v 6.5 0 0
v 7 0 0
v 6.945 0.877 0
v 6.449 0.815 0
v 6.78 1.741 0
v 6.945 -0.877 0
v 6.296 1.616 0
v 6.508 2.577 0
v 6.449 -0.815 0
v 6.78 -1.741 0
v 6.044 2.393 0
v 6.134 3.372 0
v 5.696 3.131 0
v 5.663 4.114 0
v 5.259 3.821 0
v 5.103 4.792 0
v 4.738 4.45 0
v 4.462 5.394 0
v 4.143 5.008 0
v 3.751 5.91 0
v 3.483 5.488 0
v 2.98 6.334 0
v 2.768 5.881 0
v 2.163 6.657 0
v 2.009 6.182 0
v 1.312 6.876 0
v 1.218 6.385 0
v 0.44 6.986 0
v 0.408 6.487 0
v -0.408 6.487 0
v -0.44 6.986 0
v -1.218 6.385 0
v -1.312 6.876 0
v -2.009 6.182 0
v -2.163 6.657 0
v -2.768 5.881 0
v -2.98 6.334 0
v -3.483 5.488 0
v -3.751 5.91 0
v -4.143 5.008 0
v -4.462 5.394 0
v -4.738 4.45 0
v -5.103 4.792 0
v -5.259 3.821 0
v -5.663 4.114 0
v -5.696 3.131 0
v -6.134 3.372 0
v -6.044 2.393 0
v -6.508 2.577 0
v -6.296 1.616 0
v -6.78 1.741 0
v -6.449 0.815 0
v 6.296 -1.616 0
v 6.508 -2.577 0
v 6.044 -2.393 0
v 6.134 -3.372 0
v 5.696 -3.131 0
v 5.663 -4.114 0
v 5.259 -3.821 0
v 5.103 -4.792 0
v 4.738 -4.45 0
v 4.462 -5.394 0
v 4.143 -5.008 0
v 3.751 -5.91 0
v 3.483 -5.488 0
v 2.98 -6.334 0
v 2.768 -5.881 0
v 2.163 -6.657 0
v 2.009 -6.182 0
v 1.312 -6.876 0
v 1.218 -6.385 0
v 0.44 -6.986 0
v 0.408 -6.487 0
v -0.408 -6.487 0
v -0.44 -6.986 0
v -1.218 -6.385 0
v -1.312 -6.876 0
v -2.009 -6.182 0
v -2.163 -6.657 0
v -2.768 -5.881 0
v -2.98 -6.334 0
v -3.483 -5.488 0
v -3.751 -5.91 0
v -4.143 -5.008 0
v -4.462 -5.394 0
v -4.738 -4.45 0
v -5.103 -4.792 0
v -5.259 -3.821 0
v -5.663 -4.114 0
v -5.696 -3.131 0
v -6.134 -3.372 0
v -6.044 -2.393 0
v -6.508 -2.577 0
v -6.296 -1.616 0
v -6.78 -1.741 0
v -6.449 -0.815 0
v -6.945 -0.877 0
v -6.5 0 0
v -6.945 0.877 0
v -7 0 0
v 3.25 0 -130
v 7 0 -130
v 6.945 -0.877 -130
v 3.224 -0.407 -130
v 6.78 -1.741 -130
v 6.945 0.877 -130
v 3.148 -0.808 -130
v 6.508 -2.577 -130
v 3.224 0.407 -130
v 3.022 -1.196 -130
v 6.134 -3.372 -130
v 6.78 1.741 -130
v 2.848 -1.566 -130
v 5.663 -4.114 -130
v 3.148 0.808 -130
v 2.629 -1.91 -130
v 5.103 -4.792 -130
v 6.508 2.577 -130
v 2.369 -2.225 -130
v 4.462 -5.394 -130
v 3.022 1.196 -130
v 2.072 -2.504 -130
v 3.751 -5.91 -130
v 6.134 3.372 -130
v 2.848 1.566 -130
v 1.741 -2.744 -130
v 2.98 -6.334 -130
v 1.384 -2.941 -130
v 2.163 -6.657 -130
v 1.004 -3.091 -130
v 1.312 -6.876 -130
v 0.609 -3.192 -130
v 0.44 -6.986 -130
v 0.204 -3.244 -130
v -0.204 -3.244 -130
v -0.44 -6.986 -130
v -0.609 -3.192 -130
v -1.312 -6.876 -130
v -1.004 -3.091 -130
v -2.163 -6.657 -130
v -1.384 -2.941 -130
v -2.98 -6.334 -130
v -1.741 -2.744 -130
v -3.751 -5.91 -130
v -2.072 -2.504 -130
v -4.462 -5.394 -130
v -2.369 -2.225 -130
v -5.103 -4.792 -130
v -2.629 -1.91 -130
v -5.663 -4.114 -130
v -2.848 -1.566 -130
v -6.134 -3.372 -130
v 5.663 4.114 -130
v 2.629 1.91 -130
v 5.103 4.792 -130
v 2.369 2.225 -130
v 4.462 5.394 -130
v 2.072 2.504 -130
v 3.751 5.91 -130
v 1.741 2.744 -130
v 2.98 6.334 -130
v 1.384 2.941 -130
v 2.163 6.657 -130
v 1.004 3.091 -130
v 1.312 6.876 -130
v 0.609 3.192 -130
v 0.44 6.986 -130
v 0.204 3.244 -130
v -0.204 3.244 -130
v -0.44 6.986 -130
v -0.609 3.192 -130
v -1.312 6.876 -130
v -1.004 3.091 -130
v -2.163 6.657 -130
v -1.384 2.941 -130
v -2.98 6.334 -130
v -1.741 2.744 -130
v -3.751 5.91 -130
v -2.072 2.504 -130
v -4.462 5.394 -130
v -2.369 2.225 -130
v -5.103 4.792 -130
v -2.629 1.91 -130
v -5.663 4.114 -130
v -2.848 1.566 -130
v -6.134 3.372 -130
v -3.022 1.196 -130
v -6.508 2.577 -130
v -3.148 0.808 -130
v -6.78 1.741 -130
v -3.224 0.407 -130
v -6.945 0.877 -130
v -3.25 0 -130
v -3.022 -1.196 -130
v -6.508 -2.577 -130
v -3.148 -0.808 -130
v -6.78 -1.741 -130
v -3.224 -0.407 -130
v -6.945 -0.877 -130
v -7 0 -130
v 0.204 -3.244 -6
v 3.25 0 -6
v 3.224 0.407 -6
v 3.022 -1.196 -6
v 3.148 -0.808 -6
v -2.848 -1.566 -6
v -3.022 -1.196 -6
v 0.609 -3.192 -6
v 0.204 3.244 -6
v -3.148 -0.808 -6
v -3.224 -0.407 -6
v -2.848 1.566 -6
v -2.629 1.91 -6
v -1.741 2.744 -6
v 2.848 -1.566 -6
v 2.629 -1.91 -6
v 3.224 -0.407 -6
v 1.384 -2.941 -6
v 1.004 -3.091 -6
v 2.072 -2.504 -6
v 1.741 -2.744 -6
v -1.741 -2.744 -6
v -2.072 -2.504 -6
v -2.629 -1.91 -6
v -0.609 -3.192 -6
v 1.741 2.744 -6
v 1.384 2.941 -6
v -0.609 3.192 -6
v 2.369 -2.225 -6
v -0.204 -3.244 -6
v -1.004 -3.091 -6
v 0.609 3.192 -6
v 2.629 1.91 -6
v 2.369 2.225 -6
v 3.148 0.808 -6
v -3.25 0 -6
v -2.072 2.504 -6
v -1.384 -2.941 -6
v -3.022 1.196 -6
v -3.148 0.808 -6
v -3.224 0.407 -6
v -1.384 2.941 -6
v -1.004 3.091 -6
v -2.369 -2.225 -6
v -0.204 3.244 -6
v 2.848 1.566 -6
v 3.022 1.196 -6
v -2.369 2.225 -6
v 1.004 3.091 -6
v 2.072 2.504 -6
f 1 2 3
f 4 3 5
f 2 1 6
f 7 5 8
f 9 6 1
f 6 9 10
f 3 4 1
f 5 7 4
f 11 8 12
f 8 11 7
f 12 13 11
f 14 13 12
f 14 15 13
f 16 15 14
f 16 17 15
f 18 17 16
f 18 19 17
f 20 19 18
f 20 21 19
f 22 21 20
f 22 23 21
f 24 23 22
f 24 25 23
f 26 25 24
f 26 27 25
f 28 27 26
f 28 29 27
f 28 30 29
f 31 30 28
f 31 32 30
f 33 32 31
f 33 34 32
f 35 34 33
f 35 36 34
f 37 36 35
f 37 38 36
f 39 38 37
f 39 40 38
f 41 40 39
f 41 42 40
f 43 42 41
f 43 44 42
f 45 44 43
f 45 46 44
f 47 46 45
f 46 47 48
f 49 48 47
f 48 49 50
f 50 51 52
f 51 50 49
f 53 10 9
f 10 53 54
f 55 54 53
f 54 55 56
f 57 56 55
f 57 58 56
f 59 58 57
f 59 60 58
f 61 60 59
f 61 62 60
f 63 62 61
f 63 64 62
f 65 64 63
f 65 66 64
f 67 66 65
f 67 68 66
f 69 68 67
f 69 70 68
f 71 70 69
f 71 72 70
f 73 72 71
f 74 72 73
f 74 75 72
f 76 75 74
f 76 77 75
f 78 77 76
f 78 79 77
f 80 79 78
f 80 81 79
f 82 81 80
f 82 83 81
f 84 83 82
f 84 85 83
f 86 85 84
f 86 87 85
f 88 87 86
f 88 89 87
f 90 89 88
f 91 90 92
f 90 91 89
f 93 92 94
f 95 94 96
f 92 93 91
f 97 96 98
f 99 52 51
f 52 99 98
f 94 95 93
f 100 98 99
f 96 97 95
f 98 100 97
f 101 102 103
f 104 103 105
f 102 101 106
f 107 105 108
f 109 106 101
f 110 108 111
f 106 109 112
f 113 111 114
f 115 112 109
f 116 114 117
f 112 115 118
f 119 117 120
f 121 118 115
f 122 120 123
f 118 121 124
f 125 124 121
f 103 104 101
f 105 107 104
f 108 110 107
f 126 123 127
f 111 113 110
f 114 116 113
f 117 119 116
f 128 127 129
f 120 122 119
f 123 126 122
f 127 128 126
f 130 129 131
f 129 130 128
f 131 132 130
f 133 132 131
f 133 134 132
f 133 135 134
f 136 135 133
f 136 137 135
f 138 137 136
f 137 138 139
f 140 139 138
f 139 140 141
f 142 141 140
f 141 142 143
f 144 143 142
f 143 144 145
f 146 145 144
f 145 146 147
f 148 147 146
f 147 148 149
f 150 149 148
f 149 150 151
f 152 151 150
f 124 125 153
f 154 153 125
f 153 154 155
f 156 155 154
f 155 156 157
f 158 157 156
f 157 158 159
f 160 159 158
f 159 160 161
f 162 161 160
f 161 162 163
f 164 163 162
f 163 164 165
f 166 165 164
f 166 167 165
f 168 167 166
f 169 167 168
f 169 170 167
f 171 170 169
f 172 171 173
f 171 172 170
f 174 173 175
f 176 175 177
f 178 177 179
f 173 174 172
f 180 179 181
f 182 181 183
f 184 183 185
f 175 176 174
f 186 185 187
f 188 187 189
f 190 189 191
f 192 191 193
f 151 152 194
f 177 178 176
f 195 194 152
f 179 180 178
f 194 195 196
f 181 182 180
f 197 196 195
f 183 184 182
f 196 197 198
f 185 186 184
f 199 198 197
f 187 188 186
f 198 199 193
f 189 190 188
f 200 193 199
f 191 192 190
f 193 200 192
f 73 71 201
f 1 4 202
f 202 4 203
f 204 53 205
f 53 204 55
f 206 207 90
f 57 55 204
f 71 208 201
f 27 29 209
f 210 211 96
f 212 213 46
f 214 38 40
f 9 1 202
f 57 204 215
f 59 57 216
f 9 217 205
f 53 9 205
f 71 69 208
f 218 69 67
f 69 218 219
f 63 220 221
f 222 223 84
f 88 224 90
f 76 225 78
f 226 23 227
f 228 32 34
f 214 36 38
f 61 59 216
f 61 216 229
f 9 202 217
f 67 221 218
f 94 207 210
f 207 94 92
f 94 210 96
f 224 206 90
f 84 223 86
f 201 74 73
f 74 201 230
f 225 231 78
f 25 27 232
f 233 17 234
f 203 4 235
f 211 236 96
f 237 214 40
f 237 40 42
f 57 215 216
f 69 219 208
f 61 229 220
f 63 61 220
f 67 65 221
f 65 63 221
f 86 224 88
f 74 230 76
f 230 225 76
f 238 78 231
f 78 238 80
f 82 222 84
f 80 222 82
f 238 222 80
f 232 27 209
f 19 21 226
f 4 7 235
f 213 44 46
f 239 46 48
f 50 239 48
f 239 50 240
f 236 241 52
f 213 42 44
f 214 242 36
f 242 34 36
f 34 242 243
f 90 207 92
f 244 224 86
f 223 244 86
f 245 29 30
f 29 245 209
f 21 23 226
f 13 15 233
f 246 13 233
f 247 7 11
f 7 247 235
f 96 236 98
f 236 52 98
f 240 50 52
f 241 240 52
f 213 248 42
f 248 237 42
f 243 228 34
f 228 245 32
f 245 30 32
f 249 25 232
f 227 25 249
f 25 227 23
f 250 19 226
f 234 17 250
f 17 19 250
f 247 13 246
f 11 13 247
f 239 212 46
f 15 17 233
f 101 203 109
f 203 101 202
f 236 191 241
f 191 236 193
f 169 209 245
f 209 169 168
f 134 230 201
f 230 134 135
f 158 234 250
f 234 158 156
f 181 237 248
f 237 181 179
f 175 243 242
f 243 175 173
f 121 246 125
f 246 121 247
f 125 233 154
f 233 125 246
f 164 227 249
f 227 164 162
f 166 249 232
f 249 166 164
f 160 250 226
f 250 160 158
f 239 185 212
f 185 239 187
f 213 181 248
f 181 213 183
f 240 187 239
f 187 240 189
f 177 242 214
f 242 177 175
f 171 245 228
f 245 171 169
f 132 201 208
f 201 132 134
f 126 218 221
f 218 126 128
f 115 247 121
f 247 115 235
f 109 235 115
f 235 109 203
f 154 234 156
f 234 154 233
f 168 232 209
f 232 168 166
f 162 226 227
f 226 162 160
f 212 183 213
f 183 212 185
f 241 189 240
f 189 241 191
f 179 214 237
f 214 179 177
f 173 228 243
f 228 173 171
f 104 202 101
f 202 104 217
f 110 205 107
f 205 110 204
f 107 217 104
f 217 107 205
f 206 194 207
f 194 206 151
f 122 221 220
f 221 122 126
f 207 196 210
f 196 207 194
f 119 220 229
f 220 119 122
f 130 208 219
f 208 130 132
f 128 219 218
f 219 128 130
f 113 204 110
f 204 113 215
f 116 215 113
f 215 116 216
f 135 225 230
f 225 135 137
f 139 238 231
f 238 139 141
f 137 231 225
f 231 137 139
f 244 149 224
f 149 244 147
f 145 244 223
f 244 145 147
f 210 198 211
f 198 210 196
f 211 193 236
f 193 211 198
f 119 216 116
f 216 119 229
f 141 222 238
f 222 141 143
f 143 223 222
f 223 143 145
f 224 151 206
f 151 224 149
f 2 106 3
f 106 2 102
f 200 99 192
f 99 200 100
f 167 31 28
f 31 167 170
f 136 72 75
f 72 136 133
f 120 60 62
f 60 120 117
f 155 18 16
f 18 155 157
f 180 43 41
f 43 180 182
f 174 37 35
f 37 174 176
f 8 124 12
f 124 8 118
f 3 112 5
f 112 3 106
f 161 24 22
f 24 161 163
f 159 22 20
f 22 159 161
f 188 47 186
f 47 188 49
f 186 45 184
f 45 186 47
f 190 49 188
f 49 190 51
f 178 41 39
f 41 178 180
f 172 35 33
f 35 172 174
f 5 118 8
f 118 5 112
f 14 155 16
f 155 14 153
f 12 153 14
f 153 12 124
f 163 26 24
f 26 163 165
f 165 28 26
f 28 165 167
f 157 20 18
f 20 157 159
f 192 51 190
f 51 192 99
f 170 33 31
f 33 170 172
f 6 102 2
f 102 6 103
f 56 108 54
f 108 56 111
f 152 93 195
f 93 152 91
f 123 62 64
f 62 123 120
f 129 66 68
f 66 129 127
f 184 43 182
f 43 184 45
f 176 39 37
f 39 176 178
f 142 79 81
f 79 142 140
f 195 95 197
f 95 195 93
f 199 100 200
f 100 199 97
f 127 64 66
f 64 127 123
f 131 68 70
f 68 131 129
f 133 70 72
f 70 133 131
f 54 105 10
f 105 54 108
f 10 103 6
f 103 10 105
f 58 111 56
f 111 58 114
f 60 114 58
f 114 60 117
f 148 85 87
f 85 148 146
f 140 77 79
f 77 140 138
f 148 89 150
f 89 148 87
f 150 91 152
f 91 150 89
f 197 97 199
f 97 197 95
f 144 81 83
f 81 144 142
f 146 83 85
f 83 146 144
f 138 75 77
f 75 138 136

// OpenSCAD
$fn = 50;


difference() {
	union() {
		translate(v = [0, 0, -130.0000000000]) {
			cylinder(h = 130, r = 7.0000000000);
		}
	}
	union() {
		translate(v = [0, 0, 0]) {
			rotate(a = [0, 0, 0]) {
				difference() {
					union() {
						#translate(v = [0, 0, -130.0000000000]) {
							cylinder(h = 130, r = 2.2500000000);
						}
						#translate(v = [0, 0, -6]) {
							cylinder(h = 6, r = 7.0000000000, r1 = 3.2500000000, r2 = 6.5000000000);
						}
						#translate(v = [0, 0, -130.0000000000]) {
							cylinder(h = 130, r = 3.2500000000);
						}
						#translate(v = [0, 0, -130.0000000000]) {
							cylinder(h = 130, r = 2.2500000000);
						}
					}
					union();
				}
			}
		}
	}
}
